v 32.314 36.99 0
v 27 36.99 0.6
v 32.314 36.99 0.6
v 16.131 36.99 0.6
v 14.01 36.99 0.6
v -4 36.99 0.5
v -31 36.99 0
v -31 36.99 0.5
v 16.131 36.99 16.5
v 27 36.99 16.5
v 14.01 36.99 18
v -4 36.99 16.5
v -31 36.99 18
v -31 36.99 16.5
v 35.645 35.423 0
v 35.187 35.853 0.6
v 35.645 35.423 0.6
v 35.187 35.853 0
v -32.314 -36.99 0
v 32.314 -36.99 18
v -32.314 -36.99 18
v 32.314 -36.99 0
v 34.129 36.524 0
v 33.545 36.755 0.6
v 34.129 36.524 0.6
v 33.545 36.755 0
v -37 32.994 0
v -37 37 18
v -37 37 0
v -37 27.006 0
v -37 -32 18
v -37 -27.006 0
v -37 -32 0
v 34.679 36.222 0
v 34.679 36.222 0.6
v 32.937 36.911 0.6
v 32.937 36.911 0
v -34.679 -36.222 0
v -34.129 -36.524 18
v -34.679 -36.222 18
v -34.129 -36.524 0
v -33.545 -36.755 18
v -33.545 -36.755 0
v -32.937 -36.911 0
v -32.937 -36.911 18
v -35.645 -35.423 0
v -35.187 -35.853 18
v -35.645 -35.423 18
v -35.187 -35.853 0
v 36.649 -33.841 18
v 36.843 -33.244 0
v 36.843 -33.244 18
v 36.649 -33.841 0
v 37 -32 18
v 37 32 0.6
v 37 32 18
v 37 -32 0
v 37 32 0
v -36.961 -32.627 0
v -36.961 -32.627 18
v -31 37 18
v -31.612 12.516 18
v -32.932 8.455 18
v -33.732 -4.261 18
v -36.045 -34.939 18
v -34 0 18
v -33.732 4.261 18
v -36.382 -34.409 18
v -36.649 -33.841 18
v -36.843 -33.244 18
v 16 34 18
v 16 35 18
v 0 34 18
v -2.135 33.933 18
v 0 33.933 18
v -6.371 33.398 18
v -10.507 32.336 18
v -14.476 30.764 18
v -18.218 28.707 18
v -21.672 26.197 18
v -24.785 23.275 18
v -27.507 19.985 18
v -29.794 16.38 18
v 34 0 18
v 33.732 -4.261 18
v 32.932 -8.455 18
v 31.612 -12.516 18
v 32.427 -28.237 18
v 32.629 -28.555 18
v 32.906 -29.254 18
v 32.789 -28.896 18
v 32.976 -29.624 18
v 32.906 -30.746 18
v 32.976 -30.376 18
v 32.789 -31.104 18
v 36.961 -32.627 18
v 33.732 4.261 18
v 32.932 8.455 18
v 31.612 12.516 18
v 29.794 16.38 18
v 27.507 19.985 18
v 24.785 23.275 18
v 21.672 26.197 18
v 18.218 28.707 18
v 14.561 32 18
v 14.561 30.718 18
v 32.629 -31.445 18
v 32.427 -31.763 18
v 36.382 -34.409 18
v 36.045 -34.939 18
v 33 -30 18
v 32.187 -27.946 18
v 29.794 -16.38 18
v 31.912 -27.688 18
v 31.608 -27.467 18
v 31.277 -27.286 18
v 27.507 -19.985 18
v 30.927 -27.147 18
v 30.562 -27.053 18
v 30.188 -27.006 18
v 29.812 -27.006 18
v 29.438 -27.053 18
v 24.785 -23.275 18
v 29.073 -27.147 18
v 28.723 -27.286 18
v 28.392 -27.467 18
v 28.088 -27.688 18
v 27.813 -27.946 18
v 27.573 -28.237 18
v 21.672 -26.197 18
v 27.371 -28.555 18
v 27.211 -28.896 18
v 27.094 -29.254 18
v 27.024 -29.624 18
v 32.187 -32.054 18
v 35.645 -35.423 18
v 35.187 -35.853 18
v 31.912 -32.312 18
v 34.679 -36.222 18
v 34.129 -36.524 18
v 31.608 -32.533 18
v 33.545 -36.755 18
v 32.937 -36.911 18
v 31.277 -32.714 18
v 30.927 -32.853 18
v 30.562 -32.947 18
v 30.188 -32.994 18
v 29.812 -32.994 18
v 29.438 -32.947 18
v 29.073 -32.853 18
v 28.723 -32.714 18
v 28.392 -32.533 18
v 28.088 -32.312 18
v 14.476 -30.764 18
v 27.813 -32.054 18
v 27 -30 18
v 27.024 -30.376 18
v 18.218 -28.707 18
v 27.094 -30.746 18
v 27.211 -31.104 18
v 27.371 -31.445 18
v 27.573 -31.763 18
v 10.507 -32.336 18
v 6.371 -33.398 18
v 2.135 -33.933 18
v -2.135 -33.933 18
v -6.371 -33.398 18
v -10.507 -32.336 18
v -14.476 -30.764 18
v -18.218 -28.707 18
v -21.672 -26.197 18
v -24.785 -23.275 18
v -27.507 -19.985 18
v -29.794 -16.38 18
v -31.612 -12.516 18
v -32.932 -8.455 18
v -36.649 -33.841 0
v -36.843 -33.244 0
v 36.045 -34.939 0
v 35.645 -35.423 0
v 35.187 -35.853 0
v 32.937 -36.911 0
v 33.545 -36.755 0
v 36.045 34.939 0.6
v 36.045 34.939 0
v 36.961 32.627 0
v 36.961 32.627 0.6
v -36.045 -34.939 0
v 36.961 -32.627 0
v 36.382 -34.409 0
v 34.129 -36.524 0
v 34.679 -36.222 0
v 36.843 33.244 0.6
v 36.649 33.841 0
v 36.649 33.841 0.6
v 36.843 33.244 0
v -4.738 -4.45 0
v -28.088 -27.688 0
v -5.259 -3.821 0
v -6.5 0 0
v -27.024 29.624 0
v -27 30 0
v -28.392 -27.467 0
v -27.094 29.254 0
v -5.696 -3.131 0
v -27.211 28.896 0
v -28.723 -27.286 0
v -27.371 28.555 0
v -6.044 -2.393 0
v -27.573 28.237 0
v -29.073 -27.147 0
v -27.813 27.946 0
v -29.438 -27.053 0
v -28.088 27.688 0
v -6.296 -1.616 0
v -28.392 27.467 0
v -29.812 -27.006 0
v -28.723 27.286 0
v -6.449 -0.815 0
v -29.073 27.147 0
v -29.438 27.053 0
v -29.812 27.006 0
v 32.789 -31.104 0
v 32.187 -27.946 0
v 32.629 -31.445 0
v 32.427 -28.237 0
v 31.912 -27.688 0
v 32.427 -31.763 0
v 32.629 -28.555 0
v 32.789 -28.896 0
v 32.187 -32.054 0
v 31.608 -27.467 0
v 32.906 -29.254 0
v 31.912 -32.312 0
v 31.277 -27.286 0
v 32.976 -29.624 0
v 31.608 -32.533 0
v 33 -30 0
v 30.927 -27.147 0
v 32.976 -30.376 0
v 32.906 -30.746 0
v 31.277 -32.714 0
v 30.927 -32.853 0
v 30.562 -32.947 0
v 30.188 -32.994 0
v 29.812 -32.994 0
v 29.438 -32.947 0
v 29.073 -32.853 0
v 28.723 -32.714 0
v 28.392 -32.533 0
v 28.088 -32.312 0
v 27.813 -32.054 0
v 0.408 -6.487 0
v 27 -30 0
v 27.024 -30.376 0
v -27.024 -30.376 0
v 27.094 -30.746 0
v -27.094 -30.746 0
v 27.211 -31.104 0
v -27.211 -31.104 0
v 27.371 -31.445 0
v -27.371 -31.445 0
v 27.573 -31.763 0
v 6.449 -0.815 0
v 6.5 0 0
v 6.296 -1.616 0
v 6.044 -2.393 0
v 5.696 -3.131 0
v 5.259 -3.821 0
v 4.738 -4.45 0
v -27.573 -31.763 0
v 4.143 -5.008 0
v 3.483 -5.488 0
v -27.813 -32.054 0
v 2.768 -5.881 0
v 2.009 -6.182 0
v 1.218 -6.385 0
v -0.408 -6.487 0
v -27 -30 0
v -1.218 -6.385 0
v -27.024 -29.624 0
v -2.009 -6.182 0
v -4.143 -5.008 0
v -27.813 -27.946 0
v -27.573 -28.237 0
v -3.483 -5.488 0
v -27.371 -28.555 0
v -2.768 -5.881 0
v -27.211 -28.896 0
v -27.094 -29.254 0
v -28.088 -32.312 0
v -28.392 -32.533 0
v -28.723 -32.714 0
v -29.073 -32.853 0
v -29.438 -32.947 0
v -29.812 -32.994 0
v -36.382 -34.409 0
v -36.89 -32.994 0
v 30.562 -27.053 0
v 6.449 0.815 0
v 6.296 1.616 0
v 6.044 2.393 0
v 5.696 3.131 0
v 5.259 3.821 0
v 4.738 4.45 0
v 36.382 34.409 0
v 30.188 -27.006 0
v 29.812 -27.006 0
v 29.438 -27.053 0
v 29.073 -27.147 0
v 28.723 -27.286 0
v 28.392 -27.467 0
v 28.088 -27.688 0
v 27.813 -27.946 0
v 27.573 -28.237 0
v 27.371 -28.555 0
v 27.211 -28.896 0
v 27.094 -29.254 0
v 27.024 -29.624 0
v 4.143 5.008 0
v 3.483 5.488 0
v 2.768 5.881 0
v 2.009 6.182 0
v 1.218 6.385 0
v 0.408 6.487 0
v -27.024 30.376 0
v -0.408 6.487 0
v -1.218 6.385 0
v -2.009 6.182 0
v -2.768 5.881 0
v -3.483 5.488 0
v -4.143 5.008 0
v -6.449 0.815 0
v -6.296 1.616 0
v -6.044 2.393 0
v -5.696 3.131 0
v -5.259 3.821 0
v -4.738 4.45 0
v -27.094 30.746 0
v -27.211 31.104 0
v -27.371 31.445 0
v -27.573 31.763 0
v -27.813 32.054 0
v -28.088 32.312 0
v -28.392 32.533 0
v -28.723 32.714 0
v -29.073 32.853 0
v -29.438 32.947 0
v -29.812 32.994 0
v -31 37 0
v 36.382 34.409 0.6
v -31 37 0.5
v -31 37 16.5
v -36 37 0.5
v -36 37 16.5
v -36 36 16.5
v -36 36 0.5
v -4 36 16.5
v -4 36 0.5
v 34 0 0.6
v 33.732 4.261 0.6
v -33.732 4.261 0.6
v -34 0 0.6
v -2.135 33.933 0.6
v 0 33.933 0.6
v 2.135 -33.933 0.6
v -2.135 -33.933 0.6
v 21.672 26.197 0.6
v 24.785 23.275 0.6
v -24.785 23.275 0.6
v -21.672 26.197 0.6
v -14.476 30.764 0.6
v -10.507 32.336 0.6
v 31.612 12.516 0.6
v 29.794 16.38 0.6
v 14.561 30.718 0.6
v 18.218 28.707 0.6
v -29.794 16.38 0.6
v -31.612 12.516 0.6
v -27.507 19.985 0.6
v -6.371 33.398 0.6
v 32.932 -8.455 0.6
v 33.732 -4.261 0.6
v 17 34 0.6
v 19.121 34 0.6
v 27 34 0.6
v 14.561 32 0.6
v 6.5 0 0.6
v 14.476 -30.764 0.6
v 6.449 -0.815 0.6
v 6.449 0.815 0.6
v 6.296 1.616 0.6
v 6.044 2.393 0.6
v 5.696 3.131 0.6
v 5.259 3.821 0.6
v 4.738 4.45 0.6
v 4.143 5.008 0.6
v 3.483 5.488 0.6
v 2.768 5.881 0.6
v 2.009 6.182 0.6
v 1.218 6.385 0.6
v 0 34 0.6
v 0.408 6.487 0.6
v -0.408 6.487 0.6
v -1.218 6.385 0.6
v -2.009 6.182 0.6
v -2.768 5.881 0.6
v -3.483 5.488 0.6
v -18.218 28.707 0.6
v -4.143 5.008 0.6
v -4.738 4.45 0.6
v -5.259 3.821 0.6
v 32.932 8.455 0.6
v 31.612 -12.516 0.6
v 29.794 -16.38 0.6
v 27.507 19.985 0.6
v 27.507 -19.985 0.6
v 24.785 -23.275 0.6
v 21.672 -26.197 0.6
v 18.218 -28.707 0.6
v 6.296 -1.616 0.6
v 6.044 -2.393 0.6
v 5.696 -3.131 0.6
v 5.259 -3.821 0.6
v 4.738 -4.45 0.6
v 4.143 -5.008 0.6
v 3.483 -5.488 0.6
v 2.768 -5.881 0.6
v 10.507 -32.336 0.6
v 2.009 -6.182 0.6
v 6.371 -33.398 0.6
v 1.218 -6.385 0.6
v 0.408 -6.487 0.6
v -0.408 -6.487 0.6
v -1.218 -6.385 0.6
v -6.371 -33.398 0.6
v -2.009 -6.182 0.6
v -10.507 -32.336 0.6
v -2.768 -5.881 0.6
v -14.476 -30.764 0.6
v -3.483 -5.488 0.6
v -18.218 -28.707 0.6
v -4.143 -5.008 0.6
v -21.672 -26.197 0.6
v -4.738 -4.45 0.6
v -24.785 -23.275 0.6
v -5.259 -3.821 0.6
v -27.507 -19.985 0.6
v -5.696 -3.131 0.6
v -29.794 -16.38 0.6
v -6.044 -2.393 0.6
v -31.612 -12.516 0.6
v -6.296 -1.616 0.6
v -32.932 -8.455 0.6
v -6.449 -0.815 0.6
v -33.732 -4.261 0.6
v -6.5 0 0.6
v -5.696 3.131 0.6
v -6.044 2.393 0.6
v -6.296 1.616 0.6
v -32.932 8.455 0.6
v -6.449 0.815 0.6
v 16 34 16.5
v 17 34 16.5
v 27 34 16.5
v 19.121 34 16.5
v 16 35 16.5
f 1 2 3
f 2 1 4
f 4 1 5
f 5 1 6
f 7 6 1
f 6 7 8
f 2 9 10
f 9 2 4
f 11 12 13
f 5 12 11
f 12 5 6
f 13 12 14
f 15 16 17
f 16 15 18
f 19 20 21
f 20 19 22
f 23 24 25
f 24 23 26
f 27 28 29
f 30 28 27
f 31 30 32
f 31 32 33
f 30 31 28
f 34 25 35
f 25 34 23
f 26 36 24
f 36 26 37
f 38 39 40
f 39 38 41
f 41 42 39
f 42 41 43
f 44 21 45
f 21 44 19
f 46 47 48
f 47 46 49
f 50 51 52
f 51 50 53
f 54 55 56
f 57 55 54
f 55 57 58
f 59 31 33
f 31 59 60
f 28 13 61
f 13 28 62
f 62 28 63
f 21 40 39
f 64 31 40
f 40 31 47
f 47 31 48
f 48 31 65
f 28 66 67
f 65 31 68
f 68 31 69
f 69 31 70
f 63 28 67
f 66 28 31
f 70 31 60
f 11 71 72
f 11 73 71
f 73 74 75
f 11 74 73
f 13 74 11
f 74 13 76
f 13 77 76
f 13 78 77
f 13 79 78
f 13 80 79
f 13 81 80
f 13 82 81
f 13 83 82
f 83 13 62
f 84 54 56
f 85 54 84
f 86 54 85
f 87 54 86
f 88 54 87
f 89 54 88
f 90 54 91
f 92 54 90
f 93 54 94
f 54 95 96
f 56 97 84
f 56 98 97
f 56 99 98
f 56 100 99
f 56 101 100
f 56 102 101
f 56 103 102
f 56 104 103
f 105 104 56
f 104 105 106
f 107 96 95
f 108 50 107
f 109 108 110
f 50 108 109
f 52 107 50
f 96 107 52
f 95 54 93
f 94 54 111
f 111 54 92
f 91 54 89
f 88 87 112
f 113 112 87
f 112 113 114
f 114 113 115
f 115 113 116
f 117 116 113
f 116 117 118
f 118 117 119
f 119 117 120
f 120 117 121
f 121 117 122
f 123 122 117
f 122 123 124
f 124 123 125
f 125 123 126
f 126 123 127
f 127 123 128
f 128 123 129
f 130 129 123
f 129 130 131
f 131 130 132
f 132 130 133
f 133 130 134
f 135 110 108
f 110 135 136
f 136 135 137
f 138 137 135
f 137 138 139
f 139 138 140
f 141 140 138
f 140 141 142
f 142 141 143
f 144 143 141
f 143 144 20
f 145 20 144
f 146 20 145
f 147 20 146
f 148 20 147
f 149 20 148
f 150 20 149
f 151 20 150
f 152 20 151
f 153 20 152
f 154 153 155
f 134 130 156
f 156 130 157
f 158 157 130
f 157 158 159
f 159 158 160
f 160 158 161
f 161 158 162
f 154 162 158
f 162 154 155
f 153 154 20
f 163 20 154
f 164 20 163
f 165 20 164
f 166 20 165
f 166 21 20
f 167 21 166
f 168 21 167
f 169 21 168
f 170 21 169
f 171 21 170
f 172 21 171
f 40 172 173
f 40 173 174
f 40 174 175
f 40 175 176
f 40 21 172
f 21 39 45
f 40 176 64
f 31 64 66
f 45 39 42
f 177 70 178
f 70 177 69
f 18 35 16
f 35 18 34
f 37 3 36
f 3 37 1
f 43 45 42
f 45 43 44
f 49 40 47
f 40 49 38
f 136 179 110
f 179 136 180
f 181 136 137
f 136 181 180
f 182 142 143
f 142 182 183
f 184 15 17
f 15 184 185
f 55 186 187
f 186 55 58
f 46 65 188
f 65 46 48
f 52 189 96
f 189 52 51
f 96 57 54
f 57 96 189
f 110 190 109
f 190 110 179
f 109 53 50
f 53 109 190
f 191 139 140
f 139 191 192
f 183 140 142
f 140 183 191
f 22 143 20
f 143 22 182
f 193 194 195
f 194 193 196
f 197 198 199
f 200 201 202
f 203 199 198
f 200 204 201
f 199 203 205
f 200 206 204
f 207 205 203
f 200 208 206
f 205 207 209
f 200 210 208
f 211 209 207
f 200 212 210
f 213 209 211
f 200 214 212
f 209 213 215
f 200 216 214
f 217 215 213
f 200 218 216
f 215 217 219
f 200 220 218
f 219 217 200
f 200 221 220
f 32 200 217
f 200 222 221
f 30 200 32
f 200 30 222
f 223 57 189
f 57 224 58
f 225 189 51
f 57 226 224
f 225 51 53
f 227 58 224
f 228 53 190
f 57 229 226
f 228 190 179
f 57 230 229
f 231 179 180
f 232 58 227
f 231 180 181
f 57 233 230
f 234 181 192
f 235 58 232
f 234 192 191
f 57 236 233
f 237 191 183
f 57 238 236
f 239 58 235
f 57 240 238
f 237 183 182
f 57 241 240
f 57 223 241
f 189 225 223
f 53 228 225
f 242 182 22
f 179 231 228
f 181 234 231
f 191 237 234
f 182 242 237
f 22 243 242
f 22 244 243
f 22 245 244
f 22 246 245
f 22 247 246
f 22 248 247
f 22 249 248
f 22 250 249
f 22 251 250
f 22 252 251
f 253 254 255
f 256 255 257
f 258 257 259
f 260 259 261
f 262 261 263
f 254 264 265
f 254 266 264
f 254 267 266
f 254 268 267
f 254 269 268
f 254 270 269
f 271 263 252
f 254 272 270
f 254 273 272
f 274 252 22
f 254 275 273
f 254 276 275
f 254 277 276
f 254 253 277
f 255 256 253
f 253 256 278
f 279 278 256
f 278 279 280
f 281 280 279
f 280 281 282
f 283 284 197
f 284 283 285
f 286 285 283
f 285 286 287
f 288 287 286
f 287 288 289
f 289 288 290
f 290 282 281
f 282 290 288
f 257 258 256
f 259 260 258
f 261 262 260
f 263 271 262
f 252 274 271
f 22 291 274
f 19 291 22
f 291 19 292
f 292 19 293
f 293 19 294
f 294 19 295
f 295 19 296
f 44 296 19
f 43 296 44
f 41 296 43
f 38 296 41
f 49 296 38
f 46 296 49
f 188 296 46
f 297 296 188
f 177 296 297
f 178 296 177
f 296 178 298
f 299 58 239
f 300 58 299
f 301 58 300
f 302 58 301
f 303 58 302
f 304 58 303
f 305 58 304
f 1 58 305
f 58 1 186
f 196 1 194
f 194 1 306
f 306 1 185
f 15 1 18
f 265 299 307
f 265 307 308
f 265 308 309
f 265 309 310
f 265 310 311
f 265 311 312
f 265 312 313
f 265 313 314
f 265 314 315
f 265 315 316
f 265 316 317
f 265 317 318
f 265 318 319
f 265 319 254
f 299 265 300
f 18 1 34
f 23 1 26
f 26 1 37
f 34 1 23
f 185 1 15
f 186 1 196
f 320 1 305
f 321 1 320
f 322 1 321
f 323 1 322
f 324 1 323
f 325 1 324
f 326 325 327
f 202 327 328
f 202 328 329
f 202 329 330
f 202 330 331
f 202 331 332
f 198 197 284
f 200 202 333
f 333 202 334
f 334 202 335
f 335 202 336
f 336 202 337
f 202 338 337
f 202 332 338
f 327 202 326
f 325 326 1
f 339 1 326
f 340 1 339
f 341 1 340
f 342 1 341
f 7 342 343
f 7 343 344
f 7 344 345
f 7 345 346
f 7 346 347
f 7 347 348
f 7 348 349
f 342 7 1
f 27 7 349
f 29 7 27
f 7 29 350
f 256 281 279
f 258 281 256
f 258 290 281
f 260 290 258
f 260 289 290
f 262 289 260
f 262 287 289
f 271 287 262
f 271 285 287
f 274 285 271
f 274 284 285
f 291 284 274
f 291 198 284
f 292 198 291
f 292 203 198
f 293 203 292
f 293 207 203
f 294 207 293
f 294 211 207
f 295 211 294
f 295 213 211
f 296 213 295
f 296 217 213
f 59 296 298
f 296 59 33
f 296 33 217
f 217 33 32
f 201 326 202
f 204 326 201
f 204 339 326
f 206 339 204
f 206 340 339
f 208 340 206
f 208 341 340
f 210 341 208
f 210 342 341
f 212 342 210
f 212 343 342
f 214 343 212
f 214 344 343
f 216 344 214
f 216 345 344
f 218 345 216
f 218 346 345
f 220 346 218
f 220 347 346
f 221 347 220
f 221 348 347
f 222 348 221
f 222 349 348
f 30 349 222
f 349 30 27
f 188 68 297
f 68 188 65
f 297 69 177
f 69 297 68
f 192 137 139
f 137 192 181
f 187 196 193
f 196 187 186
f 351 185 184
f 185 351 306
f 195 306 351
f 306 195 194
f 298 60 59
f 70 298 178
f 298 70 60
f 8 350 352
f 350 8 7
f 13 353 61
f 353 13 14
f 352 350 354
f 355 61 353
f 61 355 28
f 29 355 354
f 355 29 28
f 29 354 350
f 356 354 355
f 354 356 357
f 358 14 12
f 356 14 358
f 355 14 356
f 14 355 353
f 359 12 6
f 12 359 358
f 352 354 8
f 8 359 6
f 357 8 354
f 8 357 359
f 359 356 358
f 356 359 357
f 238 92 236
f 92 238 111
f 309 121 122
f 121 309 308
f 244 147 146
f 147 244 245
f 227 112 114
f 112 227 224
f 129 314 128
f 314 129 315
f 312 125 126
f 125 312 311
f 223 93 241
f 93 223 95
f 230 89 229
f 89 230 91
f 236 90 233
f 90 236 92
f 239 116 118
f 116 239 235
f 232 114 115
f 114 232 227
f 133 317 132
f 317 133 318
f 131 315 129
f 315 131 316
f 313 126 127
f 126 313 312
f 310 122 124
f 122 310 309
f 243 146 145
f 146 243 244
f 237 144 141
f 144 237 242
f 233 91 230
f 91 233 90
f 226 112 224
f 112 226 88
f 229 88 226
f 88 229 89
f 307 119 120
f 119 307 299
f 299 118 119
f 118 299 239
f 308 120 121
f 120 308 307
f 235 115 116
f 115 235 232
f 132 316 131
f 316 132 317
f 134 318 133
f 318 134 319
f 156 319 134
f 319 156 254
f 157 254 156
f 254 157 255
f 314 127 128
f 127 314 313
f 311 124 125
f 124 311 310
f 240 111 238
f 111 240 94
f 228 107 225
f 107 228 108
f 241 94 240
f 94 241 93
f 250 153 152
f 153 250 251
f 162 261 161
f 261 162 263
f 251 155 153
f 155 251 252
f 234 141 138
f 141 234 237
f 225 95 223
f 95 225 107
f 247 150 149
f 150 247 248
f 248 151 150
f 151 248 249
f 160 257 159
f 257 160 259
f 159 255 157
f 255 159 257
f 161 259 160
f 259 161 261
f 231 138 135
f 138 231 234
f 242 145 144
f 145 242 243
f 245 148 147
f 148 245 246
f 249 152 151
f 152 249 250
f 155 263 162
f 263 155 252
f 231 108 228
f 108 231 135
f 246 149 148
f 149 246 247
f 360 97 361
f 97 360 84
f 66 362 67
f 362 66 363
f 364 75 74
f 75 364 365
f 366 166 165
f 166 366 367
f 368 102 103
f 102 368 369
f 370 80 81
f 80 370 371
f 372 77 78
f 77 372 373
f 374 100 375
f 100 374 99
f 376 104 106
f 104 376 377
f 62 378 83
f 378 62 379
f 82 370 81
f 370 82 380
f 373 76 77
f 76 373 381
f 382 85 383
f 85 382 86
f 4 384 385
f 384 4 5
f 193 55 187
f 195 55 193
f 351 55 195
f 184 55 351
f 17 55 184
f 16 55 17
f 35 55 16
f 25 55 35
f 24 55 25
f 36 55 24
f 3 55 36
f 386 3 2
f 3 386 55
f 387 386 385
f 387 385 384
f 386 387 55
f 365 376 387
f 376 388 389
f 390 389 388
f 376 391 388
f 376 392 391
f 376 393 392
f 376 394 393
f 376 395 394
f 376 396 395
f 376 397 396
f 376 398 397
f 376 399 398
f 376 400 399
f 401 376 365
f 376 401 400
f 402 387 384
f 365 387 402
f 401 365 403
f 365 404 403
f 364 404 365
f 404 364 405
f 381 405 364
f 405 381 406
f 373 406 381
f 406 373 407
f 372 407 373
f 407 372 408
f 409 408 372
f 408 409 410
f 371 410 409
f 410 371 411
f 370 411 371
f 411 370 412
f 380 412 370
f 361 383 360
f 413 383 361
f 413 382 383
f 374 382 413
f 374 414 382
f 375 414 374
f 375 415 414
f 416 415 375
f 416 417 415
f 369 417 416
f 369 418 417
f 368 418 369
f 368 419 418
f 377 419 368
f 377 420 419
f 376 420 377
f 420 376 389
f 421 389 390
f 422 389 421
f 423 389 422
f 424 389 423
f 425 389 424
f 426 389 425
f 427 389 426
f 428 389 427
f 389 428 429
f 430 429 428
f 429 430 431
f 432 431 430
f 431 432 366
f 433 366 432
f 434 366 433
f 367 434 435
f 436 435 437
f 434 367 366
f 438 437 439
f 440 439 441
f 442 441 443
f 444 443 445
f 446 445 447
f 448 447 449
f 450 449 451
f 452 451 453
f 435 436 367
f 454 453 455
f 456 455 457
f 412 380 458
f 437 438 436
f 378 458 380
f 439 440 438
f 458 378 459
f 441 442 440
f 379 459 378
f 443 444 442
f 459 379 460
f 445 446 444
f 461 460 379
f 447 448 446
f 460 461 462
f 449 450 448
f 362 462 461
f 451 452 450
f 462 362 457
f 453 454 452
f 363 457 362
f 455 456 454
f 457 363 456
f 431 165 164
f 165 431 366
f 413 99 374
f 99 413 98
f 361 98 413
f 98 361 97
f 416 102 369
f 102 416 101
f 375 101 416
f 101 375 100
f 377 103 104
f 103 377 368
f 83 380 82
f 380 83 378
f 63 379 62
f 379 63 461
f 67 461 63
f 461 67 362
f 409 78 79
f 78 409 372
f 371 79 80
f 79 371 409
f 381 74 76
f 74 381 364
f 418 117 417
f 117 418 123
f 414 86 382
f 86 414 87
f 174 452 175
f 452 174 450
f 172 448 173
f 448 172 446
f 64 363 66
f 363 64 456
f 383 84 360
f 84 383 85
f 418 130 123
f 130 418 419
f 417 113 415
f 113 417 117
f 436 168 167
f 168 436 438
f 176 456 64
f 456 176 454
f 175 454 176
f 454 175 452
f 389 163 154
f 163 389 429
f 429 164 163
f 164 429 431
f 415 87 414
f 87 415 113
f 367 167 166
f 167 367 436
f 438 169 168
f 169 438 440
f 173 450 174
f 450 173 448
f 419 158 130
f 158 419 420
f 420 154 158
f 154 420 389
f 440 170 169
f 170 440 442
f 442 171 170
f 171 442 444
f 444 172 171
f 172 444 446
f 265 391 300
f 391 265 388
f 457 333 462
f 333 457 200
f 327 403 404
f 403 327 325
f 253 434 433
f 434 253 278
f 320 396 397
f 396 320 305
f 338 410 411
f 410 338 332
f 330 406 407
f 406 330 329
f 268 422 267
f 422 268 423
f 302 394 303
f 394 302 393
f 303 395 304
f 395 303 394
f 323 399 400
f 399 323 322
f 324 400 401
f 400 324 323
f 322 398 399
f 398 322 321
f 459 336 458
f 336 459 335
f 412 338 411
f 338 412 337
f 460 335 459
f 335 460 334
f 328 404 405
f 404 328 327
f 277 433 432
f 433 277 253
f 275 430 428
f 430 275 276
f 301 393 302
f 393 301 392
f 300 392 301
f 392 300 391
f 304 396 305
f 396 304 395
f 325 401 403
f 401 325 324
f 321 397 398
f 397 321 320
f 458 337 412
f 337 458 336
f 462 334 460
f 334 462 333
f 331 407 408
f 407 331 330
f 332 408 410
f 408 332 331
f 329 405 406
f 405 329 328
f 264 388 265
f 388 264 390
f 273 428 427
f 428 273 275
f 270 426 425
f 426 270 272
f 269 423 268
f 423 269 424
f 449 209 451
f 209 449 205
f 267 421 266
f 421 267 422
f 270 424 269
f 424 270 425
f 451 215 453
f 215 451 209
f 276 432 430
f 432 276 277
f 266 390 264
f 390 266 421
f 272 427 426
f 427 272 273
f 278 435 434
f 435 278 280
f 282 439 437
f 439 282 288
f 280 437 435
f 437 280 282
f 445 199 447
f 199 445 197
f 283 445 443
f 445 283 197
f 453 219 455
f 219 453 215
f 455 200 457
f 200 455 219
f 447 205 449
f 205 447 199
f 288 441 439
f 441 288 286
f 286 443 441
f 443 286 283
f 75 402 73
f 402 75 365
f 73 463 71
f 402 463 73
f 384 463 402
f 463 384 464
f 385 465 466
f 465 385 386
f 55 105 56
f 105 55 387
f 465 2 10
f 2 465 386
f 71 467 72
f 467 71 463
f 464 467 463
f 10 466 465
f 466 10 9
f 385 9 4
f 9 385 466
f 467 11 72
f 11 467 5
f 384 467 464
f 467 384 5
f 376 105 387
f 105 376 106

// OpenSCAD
$fn = 50;


difference() {
	union() {
		hull() {
			translate(v = [-32.0000000000, 32.0000000000, 0]) {
				cylinder(h = 18, r = 5);
			}
			translate(v = [32.0000000000, 32.0000000000, 0]) {
				cylinder(h = 18, r = 5);
			}
			translate(v = [-32.0000000000, -32.0000000000, 0]) {
				cylinder(h = 18, r = 5);
			}
			translate(v = [32.0000000000, -32.0000000000, 0]) {
				cylinder(h = 18, r = 5);
			}
		}
		translate(v = [-37.0000000000, 31.0000000000, 0]) {
			cube(size = [6, 6, 18]);
		}
	}
	union() {
		translate(v = [-37.5000000000, -30.0000000000, -250.0000000000]) {
			rotate(a = [0, 0, 0]) {
				difference() {
					union() {
						hull() {
							translate(v = [7.5000000000, 0, 0]) {
								cylinder(h = 250, r = 3.0000000000, r1 = 3.0000000000, r2 = 3.0000000000);
							}
							translate(v = [-7.5000000000, 0, 0]) {
								cylinder(h = 250, r = 3.0000000000, r1 = 3.0000000000, r2 = 3.0000000000);
							}
						}
					}
					union();
				}
			}
		}
		translate(v = [-37.5000000000, 30.0000000000, -250.0000000000]) {
			rotate(a = [0, 0, 0]) {
				difference() {
					union() {
						hull() {
							translate(v = [7.5000000000, 0, 0]) {
								cylinder(h = 250, r = 3.0000000000, r1 = 3.0000000000, r2 = 3.0000000000);
							}
							translate(v = [-7.5000000000, 0, 0]) {
								cylinder(h = 250, r = 3.0000000000, r1 = 3.0000000000, r2 = 3.0000000000);
							}
						}
					}
					union();
				}
			}
		}
		translate(v = [-36.0000000000, 36.0000000000, 0.5000000000]) {
			cube(size = [32, 1, 16]);
		}
		translate(v = [30.0000000000, -30.0000000000, -50.0000000000]) {
			cylinder(h = 100, r = 3.0000000000);
		}
		translate(v = [0, 0, 0.6000000000]) {
			cylinder(h = 20.4000000000, r = 34.0000000000);
		}
		translate(v = [0, 0, -9.0000000000]) {
			cylinder(h = 18, r = 6.5000000000);
		}
		translate(v = [0.0000000000, 32.0000000000, 0.6000000000]) {
			cube(size = [37.0000000000, 2, 20.4000000000]);
		}
		translate(v = [27.0000000000, 32.0000000000, 0.6000000000]) {
			cube(size = [10, 5, 20.4000000000]);
		}
		translate(v = [16.0000000000, 32.0000000000, 16.5000000000]) {
			cube(size = [21, 5, 1.5000000000]);
		}
		translate(v = [13.2500000000, 37.7500000000, 0.6000000000]) {
			rotate(a = [0, 0, -45]) {
				cube(size = [7.5000000000, 1.5000000000, 20.4000000000]);
			}
		}
		translate(v = [7.0610000000, 30.0000000000, 0.6000000000]) {
			cube(size = [7.5000000000, 2, 17.4000000000]);
		}
	}
}
